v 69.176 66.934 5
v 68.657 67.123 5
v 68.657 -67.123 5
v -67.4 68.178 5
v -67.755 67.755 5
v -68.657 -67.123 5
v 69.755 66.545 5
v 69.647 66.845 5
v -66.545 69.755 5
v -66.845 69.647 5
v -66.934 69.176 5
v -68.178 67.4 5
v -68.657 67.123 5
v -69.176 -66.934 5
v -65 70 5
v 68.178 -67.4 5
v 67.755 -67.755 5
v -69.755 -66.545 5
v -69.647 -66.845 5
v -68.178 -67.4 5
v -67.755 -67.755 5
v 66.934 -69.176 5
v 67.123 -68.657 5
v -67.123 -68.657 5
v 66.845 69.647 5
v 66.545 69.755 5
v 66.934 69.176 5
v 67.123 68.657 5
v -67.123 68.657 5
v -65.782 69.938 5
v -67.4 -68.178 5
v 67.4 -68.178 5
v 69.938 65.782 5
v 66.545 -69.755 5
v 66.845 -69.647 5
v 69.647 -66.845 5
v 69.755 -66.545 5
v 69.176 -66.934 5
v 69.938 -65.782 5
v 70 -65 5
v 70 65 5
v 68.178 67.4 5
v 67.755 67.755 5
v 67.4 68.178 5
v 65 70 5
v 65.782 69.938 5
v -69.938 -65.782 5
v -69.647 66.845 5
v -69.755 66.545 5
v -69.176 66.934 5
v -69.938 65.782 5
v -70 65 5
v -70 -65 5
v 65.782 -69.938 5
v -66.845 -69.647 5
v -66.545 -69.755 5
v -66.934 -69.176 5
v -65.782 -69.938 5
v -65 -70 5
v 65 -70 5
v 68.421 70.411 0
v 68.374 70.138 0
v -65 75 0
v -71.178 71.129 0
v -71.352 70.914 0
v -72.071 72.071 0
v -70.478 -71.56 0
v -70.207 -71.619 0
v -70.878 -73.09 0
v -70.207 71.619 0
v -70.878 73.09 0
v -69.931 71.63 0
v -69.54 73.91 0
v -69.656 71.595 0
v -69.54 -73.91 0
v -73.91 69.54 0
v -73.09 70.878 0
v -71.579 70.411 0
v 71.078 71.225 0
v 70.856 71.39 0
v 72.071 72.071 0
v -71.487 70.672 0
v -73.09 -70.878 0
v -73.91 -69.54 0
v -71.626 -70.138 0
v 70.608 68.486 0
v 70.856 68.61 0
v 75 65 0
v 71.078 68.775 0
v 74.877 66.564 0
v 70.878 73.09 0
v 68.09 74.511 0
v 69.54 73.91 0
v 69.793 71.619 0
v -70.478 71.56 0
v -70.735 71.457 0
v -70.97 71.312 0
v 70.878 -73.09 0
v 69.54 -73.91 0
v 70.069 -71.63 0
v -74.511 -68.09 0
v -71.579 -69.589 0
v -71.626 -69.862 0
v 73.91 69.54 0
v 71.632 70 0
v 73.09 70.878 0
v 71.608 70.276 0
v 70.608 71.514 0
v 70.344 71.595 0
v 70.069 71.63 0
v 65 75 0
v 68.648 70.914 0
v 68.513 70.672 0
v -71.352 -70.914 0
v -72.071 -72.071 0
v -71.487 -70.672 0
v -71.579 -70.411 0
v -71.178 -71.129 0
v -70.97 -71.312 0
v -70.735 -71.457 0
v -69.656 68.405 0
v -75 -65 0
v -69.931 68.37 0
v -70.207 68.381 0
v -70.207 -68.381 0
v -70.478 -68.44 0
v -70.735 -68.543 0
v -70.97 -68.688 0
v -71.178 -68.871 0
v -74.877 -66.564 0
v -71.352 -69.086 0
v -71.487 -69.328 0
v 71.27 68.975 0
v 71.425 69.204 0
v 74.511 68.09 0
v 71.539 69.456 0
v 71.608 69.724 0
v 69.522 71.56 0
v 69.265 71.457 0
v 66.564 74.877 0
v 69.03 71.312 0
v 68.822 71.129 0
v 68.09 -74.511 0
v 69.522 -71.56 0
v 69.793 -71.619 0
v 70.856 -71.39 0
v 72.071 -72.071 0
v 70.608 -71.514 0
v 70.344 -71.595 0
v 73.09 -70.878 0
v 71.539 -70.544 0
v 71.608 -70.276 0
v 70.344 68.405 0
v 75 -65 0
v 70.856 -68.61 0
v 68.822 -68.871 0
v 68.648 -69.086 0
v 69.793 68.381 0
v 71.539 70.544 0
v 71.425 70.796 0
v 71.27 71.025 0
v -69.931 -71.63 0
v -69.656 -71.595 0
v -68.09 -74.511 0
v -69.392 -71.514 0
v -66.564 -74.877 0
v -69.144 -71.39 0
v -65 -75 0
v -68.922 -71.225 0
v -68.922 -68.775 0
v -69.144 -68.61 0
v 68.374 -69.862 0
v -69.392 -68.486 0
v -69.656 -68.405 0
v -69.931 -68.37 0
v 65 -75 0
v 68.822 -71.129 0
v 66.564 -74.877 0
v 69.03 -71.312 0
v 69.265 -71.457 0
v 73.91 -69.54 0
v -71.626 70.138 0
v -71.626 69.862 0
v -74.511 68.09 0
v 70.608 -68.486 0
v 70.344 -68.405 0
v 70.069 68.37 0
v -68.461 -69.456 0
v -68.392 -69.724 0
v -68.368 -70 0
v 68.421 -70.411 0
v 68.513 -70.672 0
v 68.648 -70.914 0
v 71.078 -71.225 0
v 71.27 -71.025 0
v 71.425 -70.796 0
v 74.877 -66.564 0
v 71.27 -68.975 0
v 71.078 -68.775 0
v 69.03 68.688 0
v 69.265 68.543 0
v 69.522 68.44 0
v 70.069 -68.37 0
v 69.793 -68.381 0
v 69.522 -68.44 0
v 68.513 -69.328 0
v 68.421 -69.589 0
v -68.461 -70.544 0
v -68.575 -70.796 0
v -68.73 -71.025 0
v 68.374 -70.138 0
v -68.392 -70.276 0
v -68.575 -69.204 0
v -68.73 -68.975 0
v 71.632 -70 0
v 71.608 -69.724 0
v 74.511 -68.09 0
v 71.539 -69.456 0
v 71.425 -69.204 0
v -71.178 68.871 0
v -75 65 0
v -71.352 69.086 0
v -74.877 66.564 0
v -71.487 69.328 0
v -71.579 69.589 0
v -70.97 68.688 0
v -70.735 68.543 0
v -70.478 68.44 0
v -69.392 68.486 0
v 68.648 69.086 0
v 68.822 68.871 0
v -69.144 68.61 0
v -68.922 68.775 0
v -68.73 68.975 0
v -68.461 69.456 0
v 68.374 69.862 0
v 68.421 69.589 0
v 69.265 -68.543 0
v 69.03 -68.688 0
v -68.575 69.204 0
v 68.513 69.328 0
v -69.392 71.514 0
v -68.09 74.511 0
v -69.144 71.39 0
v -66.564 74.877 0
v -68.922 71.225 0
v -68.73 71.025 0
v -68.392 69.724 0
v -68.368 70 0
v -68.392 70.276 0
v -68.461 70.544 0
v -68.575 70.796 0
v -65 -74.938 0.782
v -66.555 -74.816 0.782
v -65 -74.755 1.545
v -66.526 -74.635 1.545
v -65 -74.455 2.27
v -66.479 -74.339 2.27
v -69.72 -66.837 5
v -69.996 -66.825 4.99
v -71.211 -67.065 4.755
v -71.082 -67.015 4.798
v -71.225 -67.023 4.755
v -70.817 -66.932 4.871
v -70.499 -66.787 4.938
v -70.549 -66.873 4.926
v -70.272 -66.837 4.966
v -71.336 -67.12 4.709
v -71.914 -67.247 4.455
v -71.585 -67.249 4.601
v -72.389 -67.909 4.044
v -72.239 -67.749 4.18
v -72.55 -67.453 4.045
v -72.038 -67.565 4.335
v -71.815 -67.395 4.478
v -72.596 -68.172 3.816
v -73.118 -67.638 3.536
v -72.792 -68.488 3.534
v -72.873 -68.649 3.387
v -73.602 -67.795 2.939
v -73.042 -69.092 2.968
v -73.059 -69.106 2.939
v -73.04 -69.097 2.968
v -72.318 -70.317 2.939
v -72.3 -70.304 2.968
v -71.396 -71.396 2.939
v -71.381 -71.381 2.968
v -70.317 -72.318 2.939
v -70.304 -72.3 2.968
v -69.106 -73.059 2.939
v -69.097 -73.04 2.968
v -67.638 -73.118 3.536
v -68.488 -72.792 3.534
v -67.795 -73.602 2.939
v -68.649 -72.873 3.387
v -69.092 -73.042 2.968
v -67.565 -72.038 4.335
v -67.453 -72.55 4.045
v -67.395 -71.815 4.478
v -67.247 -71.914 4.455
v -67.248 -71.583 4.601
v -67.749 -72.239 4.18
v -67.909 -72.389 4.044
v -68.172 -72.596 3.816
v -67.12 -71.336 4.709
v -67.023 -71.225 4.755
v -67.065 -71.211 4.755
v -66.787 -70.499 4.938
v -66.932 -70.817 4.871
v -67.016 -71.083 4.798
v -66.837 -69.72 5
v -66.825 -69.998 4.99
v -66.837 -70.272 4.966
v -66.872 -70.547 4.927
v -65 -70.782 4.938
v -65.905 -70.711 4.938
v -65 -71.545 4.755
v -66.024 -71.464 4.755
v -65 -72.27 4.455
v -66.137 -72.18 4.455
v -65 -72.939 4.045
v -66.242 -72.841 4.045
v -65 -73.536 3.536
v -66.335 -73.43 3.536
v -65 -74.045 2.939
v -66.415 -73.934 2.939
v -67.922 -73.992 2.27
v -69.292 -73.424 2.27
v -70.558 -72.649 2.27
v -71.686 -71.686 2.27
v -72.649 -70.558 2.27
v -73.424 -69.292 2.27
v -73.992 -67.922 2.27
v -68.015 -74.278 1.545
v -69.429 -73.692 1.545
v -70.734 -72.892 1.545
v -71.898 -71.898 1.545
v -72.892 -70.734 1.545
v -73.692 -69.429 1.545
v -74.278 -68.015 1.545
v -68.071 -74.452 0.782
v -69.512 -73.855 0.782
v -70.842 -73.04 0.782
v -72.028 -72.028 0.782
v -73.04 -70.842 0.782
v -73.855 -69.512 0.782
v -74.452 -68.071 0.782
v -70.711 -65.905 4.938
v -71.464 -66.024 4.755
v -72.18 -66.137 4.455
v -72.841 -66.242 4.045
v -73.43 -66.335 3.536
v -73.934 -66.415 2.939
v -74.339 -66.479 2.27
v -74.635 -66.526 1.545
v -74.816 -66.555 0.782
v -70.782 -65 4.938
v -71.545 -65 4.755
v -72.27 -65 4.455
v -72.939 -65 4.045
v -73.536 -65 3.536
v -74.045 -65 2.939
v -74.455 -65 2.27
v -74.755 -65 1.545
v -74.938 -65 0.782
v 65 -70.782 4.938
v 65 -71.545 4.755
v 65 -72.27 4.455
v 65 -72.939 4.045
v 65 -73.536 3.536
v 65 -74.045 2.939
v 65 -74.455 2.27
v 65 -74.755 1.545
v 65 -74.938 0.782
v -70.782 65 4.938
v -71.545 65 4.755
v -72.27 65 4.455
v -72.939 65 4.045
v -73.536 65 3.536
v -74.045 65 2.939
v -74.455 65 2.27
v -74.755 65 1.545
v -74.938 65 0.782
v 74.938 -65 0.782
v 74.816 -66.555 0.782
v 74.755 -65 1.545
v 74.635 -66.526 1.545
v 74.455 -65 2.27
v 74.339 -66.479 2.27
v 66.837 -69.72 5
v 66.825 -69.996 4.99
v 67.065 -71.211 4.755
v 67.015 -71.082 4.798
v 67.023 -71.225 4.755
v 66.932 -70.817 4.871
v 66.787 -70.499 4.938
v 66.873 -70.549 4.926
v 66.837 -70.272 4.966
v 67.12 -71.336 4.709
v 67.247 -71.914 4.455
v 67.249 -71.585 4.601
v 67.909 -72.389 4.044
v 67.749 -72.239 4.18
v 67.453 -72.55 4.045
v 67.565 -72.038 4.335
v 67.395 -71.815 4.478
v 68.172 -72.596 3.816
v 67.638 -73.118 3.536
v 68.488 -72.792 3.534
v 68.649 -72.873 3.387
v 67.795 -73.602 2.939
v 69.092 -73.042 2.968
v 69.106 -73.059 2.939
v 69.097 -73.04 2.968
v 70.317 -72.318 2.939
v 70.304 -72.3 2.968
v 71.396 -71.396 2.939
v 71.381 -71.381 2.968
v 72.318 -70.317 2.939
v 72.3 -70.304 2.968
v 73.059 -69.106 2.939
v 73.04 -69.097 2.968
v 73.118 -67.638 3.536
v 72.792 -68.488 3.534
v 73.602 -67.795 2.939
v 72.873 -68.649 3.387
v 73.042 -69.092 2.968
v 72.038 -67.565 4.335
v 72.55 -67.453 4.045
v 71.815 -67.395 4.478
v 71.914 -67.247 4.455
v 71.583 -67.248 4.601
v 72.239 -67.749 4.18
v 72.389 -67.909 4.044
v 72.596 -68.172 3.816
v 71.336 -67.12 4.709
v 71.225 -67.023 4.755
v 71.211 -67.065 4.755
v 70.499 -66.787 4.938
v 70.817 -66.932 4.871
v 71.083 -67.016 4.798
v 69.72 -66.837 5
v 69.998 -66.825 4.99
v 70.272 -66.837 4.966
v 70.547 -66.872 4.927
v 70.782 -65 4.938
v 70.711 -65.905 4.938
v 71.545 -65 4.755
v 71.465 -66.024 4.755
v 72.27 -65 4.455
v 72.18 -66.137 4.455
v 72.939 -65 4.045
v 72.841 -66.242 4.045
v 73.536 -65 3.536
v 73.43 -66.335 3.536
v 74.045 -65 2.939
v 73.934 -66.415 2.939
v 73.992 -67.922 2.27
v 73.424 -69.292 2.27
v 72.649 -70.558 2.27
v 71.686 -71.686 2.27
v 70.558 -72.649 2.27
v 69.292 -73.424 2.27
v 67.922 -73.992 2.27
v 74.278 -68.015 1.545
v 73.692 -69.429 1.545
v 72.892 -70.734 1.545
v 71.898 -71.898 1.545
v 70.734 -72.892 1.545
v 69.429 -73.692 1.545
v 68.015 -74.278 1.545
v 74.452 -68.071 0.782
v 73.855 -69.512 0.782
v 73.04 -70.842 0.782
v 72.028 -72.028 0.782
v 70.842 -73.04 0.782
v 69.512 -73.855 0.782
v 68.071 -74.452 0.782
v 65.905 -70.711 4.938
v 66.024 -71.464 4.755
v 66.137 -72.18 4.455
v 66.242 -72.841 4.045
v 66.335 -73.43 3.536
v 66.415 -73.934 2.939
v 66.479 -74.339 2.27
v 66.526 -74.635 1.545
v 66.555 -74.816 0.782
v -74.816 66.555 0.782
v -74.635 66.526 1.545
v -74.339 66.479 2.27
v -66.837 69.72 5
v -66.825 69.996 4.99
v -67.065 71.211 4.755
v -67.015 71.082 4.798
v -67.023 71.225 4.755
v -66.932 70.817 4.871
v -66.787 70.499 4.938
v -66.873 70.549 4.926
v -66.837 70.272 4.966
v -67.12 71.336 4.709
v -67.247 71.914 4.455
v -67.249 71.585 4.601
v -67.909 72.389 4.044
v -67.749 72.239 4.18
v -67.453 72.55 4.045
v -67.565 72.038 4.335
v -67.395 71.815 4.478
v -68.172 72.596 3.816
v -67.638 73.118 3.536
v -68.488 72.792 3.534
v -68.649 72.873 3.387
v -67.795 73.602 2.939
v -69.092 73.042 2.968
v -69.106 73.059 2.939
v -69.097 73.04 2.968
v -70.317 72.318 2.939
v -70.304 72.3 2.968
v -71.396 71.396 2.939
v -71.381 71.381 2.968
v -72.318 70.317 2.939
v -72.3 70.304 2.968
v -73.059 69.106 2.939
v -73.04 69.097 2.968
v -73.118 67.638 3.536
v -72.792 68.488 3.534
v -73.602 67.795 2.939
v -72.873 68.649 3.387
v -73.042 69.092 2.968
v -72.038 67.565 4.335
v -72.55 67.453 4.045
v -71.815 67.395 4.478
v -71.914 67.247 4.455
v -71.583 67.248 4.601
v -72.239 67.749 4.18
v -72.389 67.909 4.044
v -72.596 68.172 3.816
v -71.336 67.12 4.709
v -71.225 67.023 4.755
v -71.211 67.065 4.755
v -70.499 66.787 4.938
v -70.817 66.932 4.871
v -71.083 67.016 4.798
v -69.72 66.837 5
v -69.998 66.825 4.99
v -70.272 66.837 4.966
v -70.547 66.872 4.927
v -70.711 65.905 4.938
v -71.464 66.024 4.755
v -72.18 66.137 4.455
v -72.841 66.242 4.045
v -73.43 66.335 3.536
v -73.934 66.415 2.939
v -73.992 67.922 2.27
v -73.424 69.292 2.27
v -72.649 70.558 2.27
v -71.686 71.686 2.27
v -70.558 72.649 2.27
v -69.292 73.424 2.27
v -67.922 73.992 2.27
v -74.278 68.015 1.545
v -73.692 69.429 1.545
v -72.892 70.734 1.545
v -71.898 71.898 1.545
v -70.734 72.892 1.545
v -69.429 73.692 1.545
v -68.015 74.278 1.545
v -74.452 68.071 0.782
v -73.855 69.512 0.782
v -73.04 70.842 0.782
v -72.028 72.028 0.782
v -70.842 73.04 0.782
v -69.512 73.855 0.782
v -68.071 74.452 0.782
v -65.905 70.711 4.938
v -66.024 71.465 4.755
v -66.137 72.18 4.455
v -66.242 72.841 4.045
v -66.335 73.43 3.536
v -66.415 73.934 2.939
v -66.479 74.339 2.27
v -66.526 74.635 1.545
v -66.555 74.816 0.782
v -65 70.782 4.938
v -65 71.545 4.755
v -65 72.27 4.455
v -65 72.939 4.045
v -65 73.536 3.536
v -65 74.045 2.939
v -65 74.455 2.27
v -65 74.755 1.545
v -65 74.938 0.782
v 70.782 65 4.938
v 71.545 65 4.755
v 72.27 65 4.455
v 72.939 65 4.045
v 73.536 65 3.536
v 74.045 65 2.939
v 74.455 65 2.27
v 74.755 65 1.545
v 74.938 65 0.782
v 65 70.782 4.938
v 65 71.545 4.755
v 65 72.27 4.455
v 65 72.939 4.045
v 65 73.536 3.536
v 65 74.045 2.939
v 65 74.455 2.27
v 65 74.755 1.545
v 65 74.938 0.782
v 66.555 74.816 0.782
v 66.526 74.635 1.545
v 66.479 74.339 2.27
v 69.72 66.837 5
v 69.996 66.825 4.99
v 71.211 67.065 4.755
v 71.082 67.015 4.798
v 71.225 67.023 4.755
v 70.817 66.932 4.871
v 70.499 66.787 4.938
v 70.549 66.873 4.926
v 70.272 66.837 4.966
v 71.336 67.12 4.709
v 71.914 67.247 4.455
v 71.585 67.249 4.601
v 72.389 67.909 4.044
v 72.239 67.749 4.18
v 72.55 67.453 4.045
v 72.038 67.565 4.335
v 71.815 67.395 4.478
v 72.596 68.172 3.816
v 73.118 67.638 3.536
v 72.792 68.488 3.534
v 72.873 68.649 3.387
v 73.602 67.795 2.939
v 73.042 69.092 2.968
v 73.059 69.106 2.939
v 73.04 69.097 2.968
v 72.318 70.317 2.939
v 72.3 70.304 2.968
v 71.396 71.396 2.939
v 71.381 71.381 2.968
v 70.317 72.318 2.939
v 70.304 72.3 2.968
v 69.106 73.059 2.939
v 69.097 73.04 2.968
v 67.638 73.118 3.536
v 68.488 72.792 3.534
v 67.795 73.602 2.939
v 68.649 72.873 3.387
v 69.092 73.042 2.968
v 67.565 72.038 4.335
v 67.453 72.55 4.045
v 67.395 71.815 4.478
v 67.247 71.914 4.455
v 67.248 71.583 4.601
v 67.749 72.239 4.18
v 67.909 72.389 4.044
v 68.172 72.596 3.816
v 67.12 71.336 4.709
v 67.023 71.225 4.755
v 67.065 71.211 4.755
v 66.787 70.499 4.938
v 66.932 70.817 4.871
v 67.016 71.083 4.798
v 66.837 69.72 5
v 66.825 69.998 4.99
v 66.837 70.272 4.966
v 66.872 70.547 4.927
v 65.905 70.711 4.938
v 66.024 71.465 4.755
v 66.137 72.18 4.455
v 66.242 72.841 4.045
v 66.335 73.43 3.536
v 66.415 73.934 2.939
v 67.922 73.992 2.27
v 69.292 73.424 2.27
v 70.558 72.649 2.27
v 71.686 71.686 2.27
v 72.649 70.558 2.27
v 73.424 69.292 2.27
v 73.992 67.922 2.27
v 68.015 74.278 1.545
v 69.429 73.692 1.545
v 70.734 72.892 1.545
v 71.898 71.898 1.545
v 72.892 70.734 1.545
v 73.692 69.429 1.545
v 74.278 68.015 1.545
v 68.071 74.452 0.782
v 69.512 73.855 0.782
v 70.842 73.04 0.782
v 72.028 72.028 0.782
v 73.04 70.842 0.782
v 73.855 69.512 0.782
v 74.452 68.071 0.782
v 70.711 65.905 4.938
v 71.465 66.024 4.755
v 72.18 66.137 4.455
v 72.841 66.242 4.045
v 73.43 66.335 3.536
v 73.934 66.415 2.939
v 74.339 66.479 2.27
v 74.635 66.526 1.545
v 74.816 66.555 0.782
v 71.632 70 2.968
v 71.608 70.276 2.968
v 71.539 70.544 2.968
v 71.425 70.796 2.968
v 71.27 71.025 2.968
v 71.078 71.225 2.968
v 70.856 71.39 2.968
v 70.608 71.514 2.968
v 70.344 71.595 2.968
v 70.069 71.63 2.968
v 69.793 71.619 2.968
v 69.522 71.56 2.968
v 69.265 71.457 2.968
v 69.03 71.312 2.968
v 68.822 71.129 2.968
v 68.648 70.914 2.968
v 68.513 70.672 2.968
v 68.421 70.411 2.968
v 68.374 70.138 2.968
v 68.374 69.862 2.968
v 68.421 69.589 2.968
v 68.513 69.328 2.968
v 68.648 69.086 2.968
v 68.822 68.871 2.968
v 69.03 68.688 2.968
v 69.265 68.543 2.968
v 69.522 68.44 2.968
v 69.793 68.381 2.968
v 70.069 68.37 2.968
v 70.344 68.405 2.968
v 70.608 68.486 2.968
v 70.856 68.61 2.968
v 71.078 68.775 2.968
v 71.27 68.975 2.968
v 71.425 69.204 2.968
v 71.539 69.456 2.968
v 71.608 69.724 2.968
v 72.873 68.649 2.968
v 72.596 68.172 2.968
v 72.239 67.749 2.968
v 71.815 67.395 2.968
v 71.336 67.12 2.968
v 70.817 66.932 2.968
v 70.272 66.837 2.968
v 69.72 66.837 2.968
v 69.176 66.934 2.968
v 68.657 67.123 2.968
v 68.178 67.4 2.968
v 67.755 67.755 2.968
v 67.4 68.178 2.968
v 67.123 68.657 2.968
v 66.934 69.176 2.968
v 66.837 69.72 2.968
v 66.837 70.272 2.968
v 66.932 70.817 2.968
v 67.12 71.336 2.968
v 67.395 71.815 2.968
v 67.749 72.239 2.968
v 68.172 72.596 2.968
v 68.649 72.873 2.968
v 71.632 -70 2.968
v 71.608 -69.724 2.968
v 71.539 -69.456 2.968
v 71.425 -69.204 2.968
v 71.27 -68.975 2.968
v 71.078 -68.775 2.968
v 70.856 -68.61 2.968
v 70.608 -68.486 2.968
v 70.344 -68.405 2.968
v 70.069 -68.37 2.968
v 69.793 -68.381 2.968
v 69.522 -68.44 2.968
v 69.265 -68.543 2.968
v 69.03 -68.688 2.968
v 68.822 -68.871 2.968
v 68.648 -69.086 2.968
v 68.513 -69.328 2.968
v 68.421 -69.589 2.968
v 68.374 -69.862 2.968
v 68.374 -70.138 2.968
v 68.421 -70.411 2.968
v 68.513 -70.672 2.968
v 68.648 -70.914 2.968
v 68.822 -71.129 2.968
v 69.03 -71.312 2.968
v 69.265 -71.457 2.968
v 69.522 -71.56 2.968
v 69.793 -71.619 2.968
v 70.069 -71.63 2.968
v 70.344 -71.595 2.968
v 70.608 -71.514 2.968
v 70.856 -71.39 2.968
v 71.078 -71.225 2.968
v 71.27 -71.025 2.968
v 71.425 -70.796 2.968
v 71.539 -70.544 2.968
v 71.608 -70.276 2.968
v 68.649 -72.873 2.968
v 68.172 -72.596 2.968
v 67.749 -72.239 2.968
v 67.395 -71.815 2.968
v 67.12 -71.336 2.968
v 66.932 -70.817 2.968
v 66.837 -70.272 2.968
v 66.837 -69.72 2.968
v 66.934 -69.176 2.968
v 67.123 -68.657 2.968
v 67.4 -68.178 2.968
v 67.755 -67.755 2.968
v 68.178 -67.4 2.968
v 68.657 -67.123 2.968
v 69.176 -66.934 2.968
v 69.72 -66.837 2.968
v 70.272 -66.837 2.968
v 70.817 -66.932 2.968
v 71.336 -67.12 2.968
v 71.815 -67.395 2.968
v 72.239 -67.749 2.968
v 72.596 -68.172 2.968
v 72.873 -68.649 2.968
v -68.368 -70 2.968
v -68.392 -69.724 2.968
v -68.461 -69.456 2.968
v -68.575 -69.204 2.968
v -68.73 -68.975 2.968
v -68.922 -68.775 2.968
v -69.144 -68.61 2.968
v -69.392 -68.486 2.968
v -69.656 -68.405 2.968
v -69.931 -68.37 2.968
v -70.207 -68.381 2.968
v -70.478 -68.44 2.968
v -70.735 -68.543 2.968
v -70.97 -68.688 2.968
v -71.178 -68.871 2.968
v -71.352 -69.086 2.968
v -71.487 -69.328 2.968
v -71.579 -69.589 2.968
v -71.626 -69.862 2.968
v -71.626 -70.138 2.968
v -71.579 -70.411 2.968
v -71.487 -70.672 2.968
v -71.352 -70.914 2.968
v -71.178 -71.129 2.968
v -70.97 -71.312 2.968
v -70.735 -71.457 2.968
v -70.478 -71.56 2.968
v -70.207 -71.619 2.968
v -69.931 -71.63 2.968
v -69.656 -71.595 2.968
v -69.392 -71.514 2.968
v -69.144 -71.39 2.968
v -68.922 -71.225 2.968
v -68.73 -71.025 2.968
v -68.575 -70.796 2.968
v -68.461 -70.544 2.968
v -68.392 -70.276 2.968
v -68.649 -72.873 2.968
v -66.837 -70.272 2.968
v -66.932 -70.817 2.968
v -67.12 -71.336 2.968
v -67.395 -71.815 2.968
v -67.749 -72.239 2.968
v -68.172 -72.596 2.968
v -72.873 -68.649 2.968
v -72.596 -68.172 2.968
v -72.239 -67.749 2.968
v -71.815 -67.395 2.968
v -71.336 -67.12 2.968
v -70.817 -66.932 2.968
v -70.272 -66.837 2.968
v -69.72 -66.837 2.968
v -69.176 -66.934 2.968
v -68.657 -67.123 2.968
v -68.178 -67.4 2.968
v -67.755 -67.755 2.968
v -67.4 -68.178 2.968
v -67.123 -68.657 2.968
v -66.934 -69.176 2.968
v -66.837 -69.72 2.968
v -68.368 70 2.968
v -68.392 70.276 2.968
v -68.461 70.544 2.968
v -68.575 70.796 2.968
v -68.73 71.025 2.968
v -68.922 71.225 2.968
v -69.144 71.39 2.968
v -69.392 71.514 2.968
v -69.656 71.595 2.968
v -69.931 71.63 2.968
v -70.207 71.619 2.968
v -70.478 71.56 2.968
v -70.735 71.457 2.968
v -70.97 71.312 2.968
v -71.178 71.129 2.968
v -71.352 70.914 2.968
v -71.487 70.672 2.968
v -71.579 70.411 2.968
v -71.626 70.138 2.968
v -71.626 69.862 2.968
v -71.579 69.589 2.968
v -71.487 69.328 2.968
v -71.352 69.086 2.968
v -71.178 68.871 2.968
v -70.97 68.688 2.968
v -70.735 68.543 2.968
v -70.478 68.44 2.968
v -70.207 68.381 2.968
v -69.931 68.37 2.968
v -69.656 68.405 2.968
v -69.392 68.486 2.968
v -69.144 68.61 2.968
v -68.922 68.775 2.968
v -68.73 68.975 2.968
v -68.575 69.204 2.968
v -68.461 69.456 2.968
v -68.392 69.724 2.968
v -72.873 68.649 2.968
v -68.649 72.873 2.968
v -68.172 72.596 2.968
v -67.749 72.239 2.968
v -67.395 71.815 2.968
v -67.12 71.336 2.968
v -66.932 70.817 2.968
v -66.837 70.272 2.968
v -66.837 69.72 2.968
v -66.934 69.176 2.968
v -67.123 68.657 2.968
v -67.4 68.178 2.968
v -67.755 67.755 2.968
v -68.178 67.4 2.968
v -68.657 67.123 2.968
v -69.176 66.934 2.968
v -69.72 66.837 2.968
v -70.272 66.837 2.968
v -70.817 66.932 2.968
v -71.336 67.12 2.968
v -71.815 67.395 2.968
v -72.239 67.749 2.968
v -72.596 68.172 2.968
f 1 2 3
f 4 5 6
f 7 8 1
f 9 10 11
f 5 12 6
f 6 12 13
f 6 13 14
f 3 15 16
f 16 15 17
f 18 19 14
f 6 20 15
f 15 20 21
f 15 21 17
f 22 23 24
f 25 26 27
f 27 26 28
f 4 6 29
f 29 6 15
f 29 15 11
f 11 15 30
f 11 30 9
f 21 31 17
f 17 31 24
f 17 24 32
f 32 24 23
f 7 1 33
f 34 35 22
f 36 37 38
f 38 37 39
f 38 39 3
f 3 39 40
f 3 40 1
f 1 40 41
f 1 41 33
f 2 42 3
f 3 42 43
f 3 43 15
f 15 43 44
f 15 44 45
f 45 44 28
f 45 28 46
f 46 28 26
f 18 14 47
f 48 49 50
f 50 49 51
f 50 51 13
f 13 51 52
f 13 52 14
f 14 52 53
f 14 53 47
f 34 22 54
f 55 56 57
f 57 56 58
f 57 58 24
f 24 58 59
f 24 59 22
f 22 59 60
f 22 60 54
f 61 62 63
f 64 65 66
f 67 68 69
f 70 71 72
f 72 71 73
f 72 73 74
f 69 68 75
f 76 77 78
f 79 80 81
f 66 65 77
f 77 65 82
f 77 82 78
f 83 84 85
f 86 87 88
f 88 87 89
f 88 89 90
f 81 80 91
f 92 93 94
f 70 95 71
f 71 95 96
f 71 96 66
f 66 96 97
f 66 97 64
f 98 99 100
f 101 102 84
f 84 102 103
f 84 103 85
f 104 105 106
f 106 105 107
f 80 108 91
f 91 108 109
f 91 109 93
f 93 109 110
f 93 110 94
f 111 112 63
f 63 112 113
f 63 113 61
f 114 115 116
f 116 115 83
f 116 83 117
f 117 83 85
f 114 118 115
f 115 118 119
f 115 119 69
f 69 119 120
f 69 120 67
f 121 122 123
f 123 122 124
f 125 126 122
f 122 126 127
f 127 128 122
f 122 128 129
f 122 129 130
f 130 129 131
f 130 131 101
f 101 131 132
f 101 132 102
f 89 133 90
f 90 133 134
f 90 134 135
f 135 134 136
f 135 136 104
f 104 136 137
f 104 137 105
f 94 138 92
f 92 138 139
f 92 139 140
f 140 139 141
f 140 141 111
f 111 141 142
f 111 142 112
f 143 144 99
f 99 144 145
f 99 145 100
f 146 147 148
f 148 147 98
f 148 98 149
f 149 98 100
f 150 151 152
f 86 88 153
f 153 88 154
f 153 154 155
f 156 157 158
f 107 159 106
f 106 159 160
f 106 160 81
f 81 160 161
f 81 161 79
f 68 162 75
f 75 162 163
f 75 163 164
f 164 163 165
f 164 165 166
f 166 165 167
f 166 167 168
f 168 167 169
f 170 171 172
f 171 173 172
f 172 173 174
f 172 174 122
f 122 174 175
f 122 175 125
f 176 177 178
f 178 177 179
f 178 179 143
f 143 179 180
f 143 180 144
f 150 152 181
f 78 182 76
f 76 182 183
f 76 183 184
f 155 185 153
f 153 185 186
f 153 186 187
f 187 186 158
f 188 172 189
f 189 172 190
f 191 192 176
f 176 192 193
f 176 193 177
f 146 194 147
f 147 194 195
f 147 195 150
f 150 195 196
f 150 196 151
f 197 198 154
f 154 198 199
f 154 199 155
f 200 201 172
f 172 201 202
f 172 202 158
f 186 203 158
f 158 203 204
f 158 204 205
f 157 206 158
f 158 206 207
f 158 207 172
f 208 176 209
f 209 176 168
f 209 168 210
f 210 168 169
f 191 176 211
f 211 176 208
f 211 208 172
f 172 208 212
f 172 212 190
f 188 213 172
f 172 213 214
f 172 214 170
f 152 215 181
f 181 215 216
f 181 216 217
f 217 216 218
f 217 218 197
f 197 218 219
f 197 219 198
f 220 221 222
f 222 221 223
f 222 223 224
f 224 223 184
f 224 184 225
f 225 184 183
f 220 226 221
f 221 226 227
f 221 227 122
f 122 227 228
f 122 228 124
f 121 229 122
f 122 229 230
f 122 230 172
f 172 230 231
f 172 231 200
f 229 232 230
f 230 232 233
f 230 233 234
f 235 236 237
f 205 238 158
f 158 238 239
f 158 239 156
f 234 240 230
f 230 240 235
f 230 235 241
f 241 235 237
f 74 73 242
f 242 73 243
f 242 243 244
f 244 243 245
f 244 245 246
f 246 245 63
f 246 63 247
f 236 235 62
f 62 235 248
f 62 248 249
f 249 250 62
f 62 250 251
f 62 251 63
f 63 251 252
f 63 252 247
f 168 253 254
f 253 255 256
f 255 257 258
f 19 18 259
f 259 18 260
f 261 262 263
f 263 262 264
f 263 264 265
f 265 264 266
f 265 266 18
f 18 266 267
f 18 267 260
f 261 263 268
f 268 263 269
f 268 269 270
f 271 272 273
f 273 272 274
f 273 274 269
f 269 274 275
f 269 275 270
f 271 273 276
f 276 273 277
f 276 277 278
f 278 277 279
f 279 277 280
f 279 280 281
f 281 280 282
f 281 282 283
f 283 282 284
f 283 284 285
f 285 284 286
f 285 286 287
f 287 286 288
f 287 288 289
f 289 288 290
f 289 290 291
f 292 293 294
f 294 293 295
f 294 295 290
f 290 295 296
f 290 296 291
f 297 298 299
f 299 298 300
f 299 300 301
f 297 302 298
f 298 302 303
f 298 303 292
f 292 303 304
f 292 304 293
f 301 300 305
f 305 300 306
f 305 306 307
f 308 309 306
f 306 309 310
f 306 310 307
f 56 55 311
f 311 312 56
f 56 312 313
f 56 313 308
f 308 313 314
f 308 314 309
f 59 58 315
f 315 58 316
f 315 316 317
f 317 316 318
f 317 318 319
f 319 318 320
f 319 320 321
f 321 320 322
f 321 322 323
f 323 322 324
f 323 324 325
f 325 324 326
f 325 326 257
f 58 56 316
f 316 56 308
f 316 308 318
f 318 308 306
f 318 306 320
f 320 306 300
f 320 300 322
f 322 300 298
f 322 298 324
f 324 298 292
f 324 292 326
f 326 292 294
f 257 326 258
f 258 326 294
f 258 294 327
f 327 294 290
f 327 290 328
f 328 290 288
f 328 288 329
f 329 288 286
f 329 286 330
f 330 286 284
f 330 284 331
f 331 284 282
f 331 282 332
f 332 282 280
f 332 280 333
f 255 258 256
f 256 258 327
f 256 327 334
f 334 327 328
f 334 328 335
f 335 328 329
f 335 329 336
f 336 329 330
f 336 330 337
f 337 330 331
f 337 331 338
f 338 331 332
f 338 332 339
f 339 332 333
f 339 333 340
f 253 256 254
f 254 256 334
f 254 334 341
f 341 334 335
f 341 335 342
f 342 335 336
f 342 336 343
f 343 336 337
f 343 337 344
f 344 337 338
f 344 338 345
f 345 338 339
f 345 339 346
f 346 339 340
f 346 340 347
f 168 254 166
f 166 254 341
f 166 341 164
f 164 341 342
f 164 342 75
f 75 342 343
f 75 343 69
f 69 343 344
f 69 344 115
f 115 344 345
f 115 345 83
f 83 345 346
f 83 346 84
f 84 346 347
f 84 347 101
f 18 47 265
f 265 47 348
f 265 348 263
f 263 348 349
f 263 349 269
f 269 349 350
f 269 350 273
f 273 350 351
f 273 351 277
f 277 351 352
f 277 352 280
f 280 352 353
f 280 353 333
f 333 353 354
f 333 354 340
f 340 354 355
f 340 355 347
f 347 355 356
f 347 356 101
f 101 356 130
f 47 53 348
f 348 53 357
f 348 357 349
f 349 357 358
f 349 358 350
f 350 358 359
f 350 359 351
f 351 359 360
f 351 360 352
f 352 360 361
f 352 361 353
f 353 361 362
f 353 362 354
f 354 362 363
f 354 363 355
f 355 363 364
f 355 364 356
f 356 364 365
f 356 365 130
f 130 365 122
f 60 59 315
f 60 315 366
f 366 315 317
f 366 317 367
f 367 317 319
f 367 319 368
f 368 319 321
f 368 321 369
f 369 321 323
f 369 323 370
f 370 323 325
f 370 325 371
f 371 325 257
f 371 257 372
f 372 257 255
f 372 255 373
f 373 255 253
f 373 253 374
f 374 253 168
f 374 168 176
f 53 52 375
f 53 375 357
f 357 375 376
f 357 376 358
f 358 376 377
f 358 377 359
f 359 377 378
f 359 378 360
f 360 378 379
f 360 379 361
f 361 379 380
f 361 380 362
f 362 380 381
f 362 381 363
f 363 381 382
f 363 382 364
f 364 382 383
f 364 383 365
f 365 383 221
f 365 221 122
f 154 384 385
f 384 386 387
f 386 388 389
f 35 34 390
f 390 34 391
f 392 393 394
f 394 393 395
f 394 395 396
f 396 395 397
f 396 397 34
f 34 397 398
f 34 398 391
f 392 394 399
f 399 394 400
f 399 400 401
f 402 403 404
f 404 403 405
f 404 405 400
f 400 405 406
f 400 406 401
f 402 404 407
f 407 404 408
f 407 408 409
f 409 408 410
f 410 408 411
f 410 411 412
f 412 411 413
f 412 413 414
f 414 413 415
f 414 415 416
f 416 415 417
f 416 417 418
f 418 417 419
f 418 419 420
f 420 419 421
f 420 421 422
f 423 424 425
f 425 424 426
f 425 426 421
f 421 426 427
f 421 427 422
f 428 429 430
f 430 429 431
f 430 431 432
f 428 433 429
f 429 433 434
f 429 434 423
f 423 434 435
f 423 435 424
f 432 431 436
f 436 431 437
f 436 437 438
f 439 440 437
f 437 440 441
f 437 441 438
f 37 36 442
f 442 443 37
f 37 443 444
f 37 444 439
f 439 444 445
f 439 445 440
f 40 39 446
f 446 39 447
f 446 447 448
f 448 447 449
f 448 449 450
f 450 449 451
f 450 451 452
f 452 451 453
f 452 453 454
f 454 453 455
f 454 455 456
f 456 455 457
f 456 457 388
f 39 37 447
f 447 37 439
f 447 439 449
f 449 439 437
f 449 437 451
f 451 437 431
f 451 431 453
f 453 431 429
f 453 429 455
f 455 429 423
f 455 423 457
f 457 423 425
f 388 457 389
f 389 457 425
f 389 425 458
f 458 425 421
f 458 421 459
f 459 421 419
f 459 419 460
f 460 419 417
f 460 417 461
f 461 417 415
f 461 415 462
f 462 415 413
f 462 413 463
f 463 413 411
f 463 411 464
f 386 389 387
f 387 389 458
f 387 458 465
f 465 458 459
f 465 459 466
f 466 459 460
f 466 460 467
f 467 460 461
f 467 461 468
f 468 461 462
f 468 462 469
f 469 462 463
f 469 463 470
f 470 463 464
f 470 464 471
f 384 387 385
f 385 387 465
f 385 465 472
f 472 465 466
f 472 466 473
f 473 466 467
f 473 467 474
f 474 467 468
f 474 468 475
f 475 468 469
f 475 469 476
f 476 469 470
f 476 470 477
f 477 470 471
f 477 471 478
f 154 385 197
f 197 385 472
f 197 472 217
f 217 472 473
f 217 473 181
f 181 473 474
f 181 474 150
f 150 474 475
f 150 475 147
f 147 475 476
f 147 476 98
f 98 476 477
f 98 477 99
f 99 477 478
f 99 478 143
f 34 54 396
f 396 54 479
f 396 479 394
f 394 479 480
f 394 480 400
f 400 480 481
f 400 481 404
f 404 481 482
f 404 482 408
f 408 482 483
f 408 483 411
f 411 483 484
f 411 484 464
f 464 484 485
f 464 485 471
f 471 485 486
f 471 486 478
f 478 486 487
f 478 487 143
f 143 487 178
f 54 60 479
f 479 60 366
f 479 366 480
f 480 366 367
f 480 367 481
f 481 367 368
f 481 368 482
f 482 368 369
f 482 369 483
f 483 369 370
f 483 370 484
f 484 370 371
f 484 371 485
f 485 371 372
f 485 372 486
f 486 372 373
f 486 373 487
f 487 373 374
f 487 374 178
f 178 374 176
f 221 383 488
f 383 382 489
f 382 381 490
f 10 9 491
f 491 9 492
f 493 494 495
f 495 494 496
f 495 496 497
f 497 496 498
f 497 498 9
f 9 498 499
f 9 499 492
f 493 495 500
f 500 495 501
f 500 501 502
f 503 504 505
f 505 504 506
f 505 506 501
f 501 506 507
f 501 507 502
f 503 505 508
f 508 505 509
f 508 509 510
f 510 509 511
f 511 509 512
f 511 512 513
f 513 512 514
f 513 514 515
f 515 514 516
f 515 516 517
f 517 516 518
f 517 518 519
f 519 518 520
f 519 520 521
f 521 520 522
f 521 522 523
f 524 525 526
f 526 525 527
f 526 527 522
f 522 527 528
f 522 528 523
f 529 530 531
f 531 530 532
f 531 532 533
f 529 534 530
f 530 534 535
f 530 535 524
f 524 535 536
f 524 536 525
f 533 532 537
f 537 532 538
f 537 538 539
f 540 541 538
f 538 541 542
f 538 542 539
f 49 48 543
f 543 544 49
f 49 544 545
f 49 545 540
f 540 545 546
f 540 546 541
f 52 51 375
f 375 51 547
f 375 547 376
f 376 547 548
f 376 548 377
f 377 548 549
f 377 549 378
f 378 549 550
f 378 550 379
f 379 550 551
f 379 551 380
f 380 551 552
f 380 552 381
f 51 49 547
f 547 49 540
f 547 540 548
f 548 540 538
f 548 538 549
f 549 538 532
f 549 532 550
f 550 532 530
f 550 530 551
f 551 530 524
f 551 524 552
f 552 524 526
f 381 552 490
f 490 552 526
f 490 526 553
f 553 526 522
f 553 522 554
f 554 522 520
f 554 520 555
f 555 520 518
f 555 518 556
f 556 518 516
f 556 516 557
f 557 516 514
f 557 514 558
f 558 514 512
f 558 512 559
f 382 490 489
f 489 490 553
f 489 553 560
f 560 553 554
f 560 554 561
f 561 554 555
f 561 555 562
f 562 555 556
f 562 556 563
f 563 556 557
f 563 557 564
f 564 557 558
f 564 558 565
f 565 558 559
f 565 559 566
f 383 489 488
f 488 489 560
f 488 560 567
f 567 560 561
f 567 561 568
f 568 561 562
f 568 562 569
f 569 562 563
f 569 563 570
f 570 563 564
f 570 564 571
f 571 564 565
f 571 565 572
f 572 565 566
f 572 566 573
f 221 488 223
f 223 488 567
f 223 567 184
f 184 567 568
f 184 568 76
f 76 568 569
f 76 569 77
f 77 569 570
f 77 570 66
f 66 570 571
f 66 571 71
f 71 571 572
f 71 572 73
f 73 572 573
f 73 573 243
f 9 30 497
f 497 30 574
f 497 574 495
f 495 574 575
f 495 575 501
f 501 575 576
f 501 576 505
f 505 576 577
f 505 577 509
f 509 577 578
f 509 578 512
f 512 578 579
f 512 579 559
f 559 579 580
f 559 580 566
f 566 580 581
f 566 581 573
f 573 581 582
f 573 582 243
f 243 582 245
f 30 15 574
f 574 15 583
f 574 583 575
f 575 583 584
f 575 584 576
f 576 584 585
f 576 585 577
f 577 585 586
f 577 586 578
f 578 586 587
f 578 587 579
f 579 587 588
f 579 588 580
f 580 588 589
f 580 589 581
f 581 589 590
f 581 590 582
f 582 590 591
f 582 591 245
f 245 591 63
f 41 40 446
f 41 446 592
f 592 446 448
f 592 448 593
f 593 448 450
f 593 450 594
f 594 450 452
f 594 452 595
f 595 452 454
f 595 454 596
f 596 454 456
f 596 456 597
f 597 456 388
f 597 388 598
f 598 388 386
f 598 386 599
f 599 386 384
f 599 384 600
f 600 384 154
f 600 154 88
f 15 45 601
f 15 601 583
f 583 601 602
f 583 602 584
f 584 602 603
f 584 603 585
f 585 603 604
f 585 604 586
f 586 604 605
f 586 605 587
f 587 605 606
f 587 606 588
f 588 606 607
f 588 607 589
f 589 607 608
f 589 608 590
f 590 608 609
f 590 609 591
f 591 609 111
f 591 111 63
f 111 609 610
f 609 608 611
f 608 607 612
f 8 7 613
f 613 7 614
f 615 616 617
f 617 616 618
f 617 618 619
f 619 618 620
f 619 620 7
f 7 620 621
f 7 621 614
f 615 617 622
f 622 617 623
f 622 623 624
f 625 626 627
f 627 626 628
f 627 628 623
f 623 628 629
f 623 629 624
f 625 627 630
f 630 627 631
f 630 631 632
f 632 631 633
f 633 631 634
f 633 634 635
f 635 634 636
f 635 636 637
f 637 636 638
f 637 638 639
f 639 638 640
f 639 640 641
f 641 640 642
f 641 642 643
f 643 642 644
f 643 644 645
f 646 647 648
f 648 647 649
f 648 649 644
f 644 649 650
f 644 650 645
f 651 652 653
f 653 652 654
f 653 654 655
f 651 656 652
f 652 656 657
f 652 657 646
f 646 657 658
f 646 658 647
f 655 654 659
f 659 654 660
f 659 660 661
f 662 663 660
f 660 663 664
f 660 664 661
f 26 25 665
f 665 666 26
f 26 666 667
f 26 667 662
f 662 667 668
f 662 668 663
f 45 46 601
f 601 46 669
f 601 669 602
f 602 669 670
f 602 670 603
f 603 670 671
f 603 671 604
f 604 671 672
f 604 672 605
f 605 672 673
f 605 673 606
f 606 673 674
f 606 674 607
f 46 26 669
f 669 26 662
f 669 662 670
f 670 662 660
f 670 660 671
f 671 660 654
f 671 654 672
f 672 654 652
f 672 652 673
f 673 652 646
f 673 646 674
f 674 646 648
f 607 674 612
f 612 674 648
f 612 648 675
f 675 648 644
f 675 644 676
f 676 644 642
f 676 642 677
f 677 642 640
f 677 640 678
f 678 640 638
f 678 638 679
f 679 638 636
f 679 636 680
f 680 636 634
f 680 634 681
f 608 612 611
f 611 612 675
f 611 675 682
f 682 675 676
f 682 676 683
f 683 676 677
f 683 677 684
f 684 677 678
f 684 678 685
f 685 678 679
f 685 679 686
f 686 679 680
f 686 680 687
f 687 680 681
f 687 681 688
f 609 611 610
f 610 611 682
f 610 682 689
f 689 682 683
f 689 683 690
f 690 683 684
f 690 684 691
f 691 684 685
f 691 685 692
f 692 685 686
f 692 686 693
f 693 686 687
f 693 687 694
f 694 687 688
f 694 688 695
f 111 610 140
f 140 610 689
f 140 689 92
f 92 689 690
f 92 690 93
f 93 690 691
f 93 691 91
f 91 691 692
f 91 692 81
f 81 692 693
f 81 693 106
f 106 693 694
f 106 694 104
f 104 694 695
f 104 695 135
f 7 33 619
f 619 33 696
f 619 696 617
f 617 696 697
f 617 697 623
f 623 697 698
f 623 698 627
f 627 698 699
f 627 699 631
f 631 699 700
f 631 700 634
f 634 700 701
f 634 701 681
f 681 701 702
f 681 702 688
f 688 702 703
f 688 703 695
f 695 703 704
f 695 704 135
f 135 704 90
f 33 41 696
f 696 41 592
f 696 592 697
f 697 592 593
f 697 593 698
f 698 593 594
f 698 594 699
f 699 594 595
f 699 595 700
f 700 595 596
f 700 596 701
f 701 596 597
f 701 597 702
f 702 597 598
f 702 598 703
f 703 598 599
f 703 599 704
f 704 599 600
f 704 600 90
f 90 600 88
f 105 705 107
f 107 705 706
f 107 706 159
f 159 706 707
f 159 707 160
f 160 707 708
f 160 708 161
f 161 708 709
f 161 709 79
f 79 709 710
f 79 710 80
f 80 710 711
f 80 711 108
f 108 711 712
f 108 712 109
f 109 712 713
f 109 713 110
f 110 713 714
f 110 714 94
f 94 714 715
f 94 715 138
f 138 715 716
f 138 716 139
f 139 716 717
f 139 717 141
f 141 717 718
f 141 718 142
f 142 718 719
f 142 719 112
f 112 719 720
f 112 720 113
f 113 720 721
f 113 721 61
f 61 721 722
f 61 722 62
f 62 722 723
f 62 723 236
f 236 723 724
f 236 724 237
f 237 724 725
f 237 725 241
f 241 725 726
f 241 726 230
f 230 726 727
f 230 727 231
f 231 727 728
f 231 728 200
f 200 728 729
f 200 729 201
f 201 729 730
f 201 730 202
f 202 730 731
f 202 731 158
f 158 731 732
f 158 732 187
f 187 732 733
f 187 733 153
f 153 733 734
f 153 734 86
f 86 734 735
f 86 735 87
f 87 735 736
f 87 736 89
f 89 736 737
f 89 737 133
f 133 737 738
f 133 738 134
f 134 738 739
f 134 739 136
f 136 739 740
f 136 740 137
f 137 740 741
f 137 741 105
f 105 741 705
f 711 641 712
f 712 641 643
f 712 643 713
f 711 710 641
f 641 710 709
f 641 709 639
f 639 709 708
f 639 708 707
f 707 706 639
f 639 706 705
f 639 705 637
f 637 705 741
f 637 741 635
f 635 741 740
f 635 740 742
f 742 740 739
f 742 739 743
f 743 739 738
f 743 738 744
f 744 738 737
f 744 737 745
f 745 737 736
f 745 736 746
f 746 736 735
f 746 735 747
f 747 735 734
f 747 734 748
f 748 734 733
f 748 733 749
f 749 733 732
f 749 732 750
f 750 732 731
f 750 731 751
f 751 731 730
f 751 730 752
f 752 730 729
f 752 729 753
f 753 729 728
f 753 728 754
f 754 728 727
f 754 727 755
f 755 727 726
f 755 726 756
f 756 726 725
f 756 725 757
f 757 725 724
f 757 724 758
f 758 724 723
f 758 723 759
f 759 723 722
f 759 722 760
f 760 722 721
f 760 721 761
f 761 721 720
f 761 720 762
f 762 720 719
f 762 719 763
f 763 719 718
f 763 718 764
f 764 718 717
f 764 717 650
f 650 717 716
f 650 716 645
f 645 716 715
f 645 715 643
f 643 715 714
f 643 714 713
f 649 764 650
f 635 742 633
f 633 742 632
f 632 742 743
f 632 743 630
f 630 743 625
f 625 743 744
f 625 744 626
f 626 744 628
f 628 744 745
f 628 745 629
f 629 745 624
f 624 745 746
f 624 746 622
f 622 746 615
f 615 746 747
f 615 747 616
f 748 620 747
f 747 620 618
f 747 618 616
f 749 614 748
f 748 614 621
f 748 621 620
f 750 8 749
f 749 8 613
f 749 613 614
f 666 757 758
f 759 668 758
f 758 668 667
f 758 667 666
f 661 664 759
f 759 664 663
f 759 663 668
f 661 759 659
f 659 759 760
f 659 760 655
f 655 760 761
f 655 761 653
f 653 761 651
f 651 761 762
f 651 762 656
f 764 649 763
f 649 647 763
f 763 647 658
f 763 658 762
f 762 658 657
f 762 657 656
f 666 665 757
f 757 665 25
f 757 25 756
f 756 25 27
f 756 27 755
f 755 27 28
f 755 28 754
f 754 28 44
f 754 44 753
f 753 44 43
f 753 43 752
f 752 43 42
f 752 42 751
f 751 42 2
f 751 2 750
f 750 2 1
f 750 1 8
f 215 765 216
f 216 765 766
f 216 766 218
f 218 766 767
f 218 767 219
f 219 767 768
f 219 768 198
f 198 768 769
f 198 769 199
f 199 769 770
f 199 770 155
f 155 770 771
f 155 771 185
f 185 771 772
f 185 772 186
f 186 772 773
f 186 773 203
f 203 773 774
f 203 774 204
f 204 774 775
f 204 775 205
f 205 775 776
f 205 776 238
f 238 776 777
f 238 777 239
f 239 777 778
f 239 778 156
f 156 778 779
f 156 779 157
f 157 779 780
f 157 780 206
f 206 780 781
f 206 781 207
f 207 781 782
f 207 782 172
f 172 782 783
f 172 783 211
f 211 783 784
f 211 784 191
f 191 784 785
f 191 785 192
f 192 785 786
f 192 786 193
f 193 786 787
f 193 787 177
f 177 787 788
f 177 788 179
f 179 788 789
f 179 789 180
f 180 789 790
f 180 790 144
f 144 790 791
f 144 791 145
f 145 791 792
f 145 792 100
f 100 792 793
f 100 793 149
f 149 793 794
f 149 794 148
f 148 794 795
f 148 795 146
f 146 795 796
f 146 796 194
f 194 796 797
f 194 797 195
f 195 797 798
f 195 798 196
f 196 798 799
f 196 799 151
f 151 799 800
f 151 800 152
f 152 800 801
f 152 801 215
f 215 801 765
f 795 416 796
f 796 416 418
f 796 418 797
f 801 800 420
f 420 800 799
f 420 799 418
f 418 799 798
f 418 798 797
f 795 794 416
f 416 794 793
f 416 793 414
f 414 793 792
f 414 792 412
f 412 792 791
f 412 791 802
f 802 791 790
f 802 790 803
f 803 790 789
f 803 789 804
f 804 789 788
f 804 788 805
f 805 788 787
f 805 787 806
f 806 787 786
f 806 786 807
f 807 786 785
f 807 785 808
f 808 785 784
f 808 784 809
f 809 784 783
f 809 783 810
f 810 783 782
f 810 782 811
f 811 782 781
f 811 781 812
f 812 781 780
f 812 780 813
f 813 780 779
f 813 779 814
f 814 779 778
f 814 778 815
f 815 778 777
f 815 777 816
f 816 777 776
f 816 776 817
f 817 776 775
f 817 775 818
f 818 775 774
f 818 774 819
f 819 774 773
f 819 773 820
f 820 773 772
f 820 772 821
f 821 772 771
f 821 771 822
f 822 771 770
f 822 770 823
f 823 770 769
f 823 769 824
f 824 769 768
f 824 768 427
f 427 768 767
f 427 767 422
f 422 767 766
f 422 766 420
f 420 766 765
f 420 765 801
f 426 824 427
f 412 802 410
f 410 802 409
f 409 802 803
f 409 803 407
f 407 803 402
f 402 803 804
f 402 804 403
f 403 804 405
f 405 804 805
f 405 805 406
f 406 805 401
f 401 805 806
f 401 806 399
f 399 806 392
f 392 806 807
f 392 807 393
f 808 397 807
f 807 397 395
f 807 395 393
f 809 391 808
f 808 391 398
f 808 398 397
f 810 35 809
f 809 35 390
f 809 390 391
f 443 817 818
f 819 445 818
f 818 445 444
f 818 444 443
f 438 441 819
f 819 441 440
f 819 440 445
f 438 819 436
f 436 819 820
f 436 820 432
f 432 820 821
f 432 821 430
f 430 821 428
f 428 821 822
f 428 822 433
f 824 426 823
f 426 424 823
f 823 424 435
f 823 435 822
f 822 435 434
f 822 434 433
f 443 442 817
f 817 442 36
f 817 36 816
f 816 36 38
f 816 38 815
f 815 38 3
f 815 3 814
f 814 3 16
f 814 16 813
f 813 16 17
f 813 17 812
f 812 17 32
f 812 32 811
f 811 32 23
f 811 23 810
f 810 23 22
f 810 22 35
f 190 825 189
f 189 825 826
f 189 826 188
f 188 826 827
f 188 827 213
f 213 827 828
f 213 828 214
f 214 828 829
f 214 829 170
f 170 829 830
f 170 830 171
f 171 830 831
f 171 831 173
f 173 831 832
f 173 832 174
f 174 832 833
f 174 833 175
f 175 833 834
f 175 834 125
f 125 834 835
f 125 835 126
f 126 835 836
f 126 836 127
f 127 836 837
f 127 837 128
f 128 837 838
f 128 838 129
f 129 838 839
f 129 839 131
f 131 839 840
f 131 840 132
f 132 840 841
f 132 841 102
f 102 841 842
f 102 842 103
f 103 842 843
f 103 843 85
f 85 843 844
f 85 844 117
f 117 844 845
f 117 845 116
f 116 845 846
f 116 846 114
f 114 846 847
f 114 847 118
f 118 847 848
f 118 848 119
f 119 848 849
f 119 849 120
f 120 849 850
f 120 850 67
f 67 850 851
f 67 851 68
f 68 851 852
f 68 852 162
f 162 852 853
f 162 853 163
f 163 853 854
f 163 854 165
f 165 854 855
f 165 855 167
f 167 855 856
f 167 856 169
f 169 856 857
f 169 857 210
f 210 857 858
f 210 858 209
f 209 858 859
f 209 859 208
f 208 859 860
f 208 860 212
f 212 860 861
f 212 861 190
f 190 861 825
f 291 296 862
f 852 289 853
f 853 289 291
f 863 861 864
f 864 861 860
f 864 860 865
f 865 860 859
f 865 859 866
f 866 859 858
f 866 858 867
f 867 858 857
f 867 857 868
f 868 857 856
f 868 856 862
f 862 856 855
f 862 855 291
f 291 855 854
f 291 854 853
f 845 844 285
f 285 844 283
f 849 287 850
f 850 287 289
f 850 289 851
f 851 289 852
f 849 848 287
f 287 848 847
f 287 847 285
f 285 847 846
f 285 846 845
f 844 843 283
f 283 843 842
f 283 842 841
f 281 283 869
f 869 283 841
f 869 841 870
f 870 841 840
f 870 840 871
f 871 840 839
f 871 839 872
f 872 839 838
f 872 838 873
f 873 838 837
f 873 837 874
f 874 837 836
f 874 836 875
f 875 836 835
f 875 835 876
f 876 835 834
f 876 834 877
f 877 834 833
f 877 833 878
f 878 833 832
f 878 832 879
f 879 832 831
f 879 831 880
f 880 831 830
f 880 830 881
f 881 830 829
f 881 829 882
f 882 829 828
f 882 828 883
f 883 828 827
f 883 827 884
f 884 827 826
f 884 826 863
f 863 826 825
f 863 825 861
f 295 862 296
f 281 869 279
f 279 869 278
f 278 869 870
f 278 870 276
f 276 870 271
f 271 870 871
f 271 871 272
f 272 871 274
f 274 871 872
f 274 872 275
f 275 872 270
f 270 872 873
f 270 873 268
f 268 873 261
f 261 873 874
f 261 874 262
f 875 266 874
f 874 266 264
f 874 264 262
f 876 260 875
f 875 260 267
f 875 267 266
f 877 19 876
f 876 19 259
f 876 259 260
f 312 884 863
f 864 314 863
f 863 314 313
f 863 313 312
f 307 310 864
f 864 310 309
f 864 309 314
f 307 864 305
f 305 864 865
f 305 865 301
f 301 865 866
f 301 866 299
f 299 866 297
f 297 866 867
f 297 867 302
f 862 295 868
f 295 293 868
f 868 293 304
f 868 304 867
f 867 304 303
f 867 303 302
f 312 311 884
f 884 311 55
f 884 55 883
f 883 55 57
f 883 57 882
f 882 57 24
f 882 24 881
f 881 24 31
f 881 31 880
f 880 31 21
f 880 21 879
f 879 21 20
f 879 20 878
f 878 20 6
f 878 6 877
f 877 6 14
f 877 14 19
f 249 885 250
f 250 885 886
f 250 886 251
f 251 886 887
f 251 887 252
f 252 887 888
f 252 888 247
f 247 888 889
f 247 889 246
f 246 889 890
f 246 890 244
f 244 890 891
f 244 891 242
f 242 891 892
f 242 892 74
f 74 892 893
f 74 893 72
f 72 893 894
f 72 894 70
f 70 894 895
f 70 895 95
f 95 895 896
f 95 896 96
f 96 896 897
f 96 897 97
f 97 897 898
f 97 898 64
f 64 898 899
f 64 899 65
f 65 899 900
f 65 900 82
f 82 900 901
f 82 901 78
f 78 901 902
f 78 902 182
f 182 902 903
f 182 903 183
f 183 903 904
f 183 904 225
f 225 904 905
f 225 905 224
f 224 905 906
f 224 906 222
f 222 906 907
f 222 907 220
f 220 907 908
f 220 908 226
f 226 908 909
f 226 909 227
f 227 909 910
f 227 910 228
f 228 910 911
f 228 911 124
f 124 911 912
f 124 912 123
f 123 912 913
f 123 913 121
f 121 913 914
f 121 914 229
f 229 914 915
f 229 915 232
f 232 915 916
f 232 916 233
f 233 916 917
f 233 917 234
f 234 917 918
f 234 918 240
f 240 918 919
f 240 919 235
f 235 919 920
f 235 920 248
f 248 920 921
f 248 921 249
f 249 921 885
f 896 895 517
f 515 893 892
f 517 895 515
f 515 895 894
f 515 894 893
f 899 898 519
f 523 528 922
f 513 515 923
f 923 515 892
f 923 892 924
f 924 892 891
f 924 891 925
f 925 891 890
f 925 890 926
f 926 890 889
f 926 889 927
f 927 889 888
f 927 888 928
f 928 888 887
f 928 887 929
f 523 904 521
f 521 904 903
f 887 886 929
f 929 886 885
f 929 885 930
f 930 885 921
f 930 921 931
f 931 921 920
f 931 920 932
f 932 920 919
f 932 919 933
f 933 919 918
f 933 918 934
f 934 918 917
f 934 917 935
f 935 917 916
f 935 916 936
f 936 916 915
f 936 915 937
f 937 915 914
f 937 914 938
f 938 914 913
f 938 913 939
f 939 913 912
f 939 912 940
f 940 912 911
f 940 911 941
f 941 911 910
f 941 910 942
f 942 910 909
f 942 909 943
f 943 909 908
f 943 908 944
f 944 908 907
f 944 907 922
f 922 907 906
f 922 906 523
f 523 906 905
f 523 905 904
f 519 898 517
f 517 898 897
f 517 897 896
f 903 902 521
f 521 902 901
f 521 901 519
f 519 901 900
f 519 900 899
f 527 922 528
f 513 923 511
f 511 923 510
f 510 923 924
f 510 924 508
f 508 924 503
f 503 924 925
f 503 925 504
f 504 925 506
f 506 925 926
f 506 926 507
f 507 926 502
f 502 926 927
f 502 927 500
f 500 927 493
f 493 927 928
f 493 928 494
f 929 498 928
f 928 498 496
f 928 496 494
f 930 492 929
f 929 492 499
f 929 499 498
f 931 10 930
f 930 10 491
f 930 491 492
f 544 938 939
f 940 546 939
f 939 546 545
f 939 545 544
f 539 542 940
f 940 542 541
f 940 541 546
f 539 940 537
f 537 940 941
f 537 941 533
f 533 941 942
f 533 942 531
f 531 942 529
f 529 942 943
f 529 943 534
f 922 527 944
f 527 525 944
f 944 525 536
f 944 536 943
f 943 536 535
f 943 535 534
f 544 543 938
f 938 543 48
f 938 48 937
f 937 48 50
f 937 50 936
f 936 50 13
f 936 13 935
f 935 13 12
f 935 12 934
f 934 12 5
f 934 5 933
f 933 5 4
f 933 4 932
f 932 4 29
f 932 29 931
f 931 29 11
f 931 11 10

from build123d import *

# Parameters (mm, degrees)
CROQUIS1_W                                           = 150
CROQUIS1_H                                           = 150
SALIENTE_EXTRUIR1_DEPTH                              = 5
REDONDEO1_R                                          = 10
REDONDEO3_R                                          = 5
REFRENTADO_PARA_TORNILLO_CON_CABEZA_TRON_D           = 3.2639
REFRENTADO_PARA_TORNILLO_CON_CABEZA_TRON_DEPTH       = 50
REFRENTADO_PARA_TORNILLO_CON_CABEZA_TRON_CBORE_D     = 6.35
REFRENTADO_PARA_TORNILLO_CON_CABEZA_TRON_CBORE_DEPTH = 2.032
REFRENTADO_PARA_TORNILLO_CON_CABEZA_TRON_TIP         = 0.980574487


with BuildPart() as part:
    # Croquis1 → Saliente-Extruir1 (new body)
    with BuildSketch(Plane.XY):
        Rectangle(CROQUIS1_W, CROQUIS1_H)
    extrude(amount=SALIENTE_EXTRUIR1_DEPTH)

    # Redondeo1
    redondeo1_edges = [part.edges().sort_by_distance(p)[0] for p in [
        (75, -75, 2.5),
        (-75, -75, 2.5),
        (-75, 75, 2.5),
        (75, 75, 2.5),
    ]]
    fillet(redondeo1_edges, radius=REDONDEO1_R)

    # Redondeo3
    redondeo3_edges = [part.edges().sort_by_distance(p)[0] for p in [
        (72.071067812, 72.071067812, 5),
        (75, 0, 5),
        (72.071067812, -72.071067812, 5),
        (0, -75, 5),
        (-72.071067812, -72.071067812, 5),
        (-75, 0, 5),
        (-72.071067812, 72.071067812, 5),
        (0, 75, 5),
    ]]
    fillet(redondeo3_edges, radius=REDONDEO3_R - 0.0001)  # a hair under: the kernel refuses the full size

    # Refrentado para tornillo con cabeza troncocónica de #41
    with Locations(Plane.XY.offset(5)):
        with Locations((-70, 70), (-70, -70), (70, -70), (70, 70)):
            CounterBoreHole(REFRENTADO_PARA_TORNILLO_CON_CABEZA_TRON_D / 2, REFRENTADO_PARA_TORNILLO_CON_CABEZA_TRON_CBORE_D / 2, REFRENTADO_PARA_TORNILLO_CON_CABEZA_TRON_CBORE_DEPTH, depth=REFRENTADO_PARA_TORNILLO_CON_CABEZA_TRON_DEPTH)
            with Locations((0, 0, -(REFRENTADO_PARA_TORNILLO_CON_CABEZA_TRON_DEPTH + REFRENTADO_PARA_TORNILLO_CON_CABEZA_TRON_TIP / 2))):  # 118° drill point
                Cone(0, REFRENTADO_PARA_TORNILLO_CON_CABEZA_TRON_D / 2, REFRENTADO_PARA_TORNILLO_CON_CABEZA_TRON_TIP, mode=Mode.SUBTRACT)


solid = part.part
